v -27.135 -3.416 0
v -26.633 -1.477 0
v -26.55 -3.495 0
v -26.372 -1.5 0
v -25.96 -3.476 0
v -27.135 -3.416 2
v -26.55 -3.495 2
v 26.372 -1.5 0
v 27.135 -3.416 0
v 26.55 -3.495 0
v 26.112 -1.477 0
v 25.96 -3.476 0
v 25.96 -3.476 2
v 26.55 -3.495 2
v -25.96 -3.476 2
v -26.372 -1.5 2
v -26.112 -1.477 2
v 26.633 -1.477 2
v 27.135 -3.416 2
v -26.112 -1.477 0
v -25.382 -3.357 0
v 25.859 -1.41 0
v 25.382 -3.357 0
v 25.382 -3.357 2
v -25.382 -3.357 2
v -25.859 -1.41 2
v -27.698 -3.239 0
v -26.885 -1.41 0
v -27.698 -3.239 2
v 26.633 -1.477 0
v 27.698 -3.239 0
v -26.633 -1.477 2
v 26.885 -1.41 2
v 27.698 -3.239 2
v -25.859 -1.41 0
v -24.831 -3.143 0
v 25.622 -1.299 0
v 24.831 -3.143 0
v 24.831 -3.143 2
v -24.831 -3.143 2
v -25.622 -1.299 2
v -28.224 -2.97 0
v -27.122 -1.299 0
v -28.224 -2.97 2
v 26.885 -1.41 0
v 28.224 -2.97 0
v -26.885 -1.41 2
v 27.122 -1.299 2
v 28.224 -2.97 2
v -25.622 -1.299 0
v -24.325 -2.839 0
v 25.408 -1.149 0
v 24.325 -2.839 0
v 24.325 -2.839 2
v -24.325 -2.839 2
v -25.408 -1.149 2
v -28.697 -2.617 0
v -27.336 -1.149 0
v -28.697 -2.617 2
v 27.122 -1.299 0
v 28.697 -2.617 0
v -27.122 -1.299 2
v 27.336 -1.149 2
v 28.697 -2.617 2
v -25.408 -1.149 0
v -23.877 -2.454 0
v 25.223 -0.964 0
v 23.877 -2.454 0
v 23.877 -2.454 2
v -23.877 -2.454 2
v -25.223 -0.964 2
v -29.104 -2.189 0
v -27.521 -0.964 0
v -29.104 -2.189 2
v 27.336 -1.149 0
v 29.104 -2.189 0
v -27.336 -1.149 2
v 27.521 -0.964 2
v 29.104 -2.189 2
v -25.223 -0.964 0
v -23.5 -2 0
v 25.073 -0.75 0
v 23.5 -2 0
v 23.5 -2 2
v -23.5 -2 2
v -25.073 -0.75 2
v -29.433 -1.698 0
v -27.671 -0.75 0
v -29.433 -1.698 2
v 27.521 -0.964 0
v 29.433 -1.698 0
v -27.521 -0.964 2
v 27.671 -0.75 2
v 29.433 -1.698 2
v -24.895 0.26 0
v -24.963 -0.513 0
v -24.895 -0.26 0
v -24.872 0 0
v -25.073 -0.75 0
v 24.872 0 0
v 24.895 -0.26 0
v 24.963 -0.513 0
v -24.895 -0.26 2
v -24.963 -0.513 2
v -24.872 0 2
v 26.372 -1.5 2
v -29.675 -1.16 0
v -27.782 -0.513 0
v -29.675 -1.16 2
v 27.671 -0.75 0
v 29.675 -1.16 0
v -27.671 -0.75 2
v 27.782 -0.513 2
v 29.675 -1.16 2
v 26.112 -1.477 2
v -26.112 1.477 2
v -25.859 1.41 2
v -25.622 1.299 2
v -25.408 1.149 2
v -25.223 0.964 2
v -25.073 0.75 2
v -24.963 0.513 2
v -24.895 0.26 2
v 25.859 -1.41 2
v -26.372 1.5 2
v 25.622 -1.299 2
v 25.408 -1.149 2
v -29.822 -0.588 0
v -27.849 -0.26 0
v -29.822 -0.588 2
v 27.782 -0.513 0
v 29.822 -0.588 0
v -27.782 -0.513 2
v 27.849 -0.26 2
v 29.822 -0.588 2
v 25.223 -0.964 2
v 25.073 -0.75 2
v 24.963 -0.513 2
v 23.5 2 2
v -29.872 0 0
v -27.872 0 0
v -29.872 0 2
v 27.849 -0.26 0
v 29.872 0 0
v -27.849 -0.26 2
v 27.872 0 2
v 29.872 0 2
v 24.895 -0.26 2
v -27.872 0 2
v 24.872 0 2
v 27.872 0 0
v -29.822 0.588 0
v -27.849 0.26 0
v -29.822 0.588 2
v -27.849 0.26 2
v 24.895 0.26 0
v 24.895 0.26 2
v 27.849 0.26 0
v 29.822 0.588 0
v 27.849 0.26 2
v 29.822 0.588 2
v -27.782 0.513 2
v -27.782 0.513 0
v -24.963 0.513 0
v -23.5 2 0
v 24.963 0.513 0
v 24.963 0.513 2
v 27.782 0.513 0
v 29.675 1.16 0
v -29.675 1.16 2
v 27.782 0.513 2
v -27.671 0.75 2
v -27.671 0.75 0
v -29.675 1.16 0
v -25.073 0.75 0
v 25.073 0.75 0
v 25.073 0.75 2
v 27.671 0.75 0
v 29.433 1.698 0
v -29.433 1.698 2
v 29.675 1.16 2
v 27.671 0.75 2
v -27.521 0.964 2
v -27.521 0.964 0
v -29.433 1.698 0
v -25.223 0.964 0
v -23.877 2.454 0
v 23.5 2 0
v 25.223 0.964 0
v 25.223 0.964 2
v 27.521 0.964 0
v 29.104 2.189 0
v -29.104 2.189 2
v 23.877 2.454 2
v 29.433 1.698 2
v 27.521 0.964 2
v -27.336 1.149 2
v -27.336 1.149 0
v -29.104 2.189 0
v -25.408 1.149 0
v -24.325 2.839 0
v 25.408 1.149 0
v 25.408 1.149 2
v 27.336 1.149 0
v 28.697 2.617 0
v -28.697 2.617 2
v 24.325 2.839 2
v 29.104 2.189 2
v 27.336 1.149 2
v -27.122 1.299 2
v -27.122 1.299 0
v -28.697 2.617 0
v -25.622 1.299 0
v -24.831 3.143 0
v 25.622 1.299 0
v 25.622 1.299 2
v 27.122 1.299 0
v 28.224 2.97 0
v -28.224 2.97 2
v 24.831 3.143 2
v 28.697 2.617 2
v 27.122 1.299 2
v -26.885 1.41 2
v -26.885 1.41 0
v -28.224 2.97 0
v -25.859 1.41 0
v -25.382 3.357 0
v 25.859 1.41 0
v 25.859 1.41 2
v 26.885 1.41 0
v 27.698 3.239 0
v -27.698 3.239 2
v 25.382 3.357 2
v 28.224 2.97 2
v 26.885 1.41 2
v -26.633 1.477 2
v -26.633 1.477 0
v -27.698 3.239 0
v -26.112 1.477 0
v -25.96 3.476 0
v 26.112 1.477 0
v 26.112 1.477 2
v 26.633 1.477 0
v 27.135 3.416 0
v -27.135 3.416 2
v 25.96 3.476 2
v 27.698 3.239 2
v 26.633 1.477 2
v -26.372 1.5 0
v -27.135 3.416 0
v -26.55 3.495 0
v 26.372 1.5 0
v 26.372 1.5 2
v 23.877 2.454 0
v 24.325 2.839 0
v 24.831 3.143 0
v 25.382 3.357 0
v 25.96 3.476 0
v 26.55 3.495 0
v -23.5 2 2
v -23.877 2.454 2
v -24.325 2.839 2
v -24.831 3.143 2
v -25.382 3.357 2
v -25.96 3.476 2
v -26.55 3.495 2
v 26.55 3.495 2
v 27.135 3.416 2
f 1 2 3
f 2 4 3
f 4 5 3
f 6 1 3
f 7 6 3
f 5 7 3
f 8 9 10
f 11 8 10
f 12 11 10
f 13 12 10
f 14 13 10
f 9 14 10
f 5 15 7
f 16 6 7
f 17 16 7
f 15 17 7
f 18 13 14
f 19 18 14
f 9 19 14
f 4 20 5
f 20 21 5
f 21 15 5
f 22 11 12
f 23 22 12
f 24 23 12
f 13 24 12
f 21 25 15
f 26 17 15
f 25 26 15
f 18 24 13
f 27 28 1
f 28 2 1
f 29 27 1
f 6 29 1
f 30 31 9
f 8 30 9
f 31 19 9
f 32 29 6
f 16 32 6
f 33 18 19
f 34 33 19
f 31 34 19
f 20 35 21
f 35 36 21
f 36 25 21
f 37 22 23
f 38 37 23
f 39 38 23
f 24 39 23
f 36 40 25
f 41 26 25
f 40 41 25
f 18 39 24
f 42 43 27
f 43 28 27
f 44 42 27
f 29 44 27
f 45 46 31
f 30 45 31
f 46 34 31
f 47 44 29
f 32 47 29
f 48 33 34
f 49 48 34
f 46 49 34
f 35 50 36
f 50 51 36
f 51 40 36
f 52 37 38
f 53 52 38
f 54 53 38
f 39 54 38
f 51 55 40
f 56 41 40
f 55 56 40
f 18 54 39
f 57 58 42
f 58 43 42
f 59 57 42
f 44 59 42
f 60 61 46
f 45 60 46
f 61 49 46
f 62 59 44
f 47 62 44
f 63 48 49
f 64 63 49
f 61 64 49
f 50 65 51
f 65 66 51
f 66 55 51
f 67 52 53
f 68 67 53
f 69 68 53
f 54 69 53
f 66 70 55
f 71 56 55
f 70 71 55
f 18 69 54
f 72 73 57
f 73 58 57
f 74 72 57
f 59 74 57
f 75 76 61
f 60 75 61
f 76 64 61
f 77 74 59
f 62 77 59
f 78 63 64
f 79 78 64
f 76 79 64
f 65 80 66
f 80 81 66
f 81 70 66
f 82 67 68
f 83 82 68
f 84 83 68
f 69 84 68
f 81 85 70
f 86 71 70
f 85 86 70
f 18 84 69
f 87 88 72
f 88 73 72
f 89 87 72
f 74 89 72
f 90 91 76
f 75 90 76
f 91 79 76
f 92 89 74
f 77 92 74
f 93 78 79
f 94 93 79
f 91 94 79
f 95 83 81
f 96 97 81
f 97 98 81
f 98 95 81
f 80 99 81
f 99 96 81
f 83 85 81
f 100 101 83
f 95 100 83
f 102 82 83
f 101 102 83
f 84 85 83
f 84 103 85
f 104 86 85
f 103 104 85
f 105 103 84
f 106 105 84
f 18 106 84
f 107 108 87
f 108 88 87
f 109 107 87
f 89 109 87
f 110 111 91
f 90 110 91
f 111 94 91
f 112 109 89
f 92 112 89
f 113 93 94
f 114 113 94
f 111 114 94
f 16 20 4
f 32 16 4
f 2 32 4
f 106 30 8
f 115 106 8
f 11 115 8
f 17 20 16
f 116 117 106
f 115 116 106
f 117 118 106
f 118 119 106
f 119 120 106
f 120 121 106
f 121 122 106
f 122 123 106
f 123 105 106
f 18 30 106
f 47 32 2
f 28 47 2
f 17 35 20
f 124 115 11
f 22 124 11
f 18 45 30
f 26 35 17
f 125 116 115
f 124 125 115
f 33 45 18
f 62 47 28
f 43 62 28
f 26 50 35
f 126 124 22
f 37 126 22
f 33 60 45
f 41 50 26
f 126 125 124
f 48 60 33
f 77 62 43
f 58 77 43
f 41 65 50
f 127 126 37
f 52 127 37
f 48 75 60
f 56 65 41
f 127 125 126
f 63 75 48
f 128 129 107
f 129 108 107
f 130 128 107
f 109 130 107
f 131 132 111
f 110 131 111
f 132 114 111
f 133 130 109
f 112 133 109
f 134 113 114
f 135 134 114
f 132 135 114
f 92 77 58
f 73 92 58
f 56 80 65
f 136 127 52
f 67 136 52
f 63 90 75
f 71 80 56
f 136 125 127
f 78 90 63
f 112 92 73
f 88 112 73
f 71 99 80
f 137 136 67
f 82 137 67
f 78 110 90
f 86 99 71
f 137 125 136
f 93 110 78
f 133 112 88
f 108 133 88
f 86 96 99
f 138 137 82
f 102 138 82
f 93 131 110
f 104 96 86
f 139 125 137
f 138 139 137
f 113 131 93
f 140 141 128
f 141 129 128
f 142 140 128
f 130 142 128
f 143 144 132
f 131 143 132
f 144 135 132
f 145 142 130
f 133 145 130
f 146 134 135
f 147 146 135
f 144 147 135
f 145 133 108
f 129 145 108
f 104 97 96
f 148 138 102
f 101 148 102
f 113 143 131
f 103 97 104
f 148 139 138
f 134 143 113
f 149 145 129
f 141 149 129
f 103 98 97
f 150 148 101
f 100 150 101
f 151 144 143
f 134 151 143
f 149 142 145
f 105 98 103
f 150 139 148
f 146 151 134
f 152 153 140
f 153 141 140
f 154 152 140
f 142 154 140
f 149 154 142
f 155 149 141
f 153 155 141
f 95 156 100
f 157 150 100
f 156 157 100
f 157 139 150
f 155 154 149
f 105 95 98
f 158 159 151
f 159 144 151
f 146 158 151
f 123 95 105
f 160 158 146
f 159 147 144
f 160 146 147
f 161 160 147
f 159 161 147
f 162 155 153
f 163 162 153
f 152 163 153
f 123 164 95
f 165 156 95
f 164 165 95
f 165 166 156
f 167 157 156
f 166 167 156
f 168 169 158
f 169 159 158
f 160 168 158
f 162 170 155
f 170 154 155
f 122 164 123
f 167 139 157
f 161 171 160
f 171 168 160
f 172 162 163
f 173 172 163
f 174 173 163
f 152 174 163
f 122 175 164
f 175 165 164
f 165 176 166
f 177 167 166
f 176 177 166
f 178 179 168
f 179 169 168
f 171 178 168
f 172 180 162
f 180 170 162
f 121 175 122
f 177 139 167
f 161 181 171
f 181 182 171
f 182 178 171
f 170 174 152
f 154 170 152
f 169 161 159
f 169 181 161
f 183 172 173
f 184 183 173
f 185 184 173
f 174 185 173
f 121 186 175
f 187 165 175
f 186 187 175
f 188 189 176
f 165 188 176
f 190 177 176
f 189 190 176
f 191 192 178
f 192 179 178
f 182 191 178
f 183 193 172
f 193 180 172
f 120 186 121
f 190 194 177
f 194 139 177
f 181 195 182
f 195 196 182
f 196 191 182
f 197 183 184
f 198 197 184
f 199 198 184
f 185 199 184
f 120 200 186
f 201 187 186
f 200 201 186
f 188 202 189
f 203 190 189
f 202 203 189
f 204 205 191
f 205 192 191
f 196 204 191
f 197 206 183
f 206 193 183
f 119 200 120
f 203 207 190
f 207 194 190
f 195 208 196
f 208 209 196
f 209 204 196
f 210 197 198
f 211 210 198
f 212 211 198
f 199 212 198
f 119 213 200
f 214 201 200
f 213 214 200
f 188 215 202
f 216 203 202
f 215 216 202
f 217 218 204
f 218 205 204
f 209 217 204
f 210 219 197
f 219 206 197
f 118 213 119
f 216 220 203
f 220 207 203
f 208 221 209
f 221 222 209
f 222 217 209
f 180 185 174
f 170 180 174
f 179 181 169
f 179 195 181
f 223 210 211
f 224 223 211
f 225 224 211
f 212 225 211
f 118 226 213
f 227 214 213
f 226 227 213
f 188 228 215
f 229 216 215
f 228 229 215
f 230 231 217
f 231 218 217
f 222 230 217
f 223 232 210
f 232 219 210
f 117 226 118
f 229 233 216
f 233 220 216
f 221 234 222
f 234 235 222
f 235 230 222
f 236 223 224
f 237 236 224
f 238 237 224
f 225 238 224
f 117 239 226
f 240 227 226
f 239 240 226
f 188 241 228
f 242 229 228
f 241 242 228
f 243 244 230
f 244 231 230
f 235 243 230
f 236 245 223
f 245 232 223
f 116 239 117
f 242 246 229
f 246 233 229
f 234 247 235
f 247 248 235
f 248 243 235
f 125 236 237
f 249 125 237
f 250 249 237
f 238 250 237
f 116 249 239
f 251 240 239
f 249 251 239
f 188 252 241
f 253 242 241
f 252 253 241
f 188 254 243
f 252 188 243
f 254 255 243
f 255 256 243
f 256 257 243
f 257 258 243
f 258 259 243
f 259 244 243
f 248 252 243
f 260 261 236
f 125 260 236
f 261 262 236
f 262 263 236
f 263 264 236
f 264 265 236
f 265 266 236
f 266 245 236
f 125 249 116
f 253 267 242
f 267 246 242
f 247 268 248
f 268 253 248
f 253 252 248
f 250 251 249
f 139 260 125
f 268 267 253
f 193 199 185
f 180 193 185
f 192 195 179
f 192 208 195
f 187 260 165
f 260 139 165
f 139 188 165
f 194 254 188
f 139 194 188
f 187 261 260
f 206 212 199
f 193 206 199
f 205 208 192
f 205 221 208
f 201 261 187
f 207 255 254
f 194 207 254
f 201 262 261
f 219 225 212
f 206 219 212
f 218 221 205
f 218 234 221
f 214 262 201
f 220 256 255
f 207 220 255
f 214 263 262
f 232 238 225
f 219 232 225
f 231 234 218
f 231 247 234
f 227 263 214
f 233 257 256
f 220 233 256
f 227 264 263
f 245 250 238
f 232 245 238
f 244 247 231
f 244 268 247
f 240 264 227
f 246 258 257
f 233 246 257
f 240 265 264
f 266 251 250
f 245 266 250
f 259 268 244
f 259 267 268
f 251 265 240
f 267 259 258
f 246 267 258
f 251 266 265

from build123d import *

# Parameters (mm, degrees)
CROQUIS1_R              = 1.5
SALIENTE_EXTRUIR1_DEPTH = 2


with BuildPart() as part:
    # Croquis1 → Saliente-Extruir1 (new body)
    with BuildSketch(Plane.XY):
        with BuildLine():
            ThreePointArc((-22.872281323, 0), (-23.032896303, -1.048097173), (-23.5, -2))
            Line((-23.5, -2), (23.5, -2))
            ThreePointArc((23.5, -2), (22.872281323, 0), (23.5, 2))
            Line((23.5, 2), (-23.5, 2))
            ThreePointArc((-23.5, 2), (-23.032896303, 1.048097173), (-22.872281323, 0))
        make_face()
        with BuildLine():
            ThreePointArc((-23.5, 2), (-29.872281323, 0), (-23.5, -2))
            Line((-23.5, -2), (-23.5, 2))
        make_face()
        with Locations((-26.372281323, 0)):
            Circle(CROQUIS1_R, mode=Mode.SUBTRACT)
        with BuildLine():
            Line((23.5, 2), (23.5, -2))
            ThreePointArc((23.5, -2), (27.420378496, -3.339385021), (29.872281323, 0))
            ThreePointArc((29.872281323, 0), (27.420378496, 3.339385021), (23.5, 2))
        make_face()
        with Locations((26.372281323, 0)):
            Circle(CROQUIS1_R, mode=Mode.SUBTRACT)
        with BuildLine():
            Line((-23.5, 2), (-23.5, -2))
            ThreePointArc((-23.5, -2), (-23.032896303, -1.048097173), (-22.872281323, 0))
            ThreePointArc((-22.872281323, 0), (-23.032896303, 1.048097173), (-23.5, 2))
        make_face()
        with BuildLine():
            ThreePointArc((23.5, 2), (22.872281323, 0), (23.5, -2))
            Line((23.5, -2), (23.5, 2))
        make_face()
    extrude(amount=SALIENTE_EXTRUIR1_DEPTH)


solid = part.part
